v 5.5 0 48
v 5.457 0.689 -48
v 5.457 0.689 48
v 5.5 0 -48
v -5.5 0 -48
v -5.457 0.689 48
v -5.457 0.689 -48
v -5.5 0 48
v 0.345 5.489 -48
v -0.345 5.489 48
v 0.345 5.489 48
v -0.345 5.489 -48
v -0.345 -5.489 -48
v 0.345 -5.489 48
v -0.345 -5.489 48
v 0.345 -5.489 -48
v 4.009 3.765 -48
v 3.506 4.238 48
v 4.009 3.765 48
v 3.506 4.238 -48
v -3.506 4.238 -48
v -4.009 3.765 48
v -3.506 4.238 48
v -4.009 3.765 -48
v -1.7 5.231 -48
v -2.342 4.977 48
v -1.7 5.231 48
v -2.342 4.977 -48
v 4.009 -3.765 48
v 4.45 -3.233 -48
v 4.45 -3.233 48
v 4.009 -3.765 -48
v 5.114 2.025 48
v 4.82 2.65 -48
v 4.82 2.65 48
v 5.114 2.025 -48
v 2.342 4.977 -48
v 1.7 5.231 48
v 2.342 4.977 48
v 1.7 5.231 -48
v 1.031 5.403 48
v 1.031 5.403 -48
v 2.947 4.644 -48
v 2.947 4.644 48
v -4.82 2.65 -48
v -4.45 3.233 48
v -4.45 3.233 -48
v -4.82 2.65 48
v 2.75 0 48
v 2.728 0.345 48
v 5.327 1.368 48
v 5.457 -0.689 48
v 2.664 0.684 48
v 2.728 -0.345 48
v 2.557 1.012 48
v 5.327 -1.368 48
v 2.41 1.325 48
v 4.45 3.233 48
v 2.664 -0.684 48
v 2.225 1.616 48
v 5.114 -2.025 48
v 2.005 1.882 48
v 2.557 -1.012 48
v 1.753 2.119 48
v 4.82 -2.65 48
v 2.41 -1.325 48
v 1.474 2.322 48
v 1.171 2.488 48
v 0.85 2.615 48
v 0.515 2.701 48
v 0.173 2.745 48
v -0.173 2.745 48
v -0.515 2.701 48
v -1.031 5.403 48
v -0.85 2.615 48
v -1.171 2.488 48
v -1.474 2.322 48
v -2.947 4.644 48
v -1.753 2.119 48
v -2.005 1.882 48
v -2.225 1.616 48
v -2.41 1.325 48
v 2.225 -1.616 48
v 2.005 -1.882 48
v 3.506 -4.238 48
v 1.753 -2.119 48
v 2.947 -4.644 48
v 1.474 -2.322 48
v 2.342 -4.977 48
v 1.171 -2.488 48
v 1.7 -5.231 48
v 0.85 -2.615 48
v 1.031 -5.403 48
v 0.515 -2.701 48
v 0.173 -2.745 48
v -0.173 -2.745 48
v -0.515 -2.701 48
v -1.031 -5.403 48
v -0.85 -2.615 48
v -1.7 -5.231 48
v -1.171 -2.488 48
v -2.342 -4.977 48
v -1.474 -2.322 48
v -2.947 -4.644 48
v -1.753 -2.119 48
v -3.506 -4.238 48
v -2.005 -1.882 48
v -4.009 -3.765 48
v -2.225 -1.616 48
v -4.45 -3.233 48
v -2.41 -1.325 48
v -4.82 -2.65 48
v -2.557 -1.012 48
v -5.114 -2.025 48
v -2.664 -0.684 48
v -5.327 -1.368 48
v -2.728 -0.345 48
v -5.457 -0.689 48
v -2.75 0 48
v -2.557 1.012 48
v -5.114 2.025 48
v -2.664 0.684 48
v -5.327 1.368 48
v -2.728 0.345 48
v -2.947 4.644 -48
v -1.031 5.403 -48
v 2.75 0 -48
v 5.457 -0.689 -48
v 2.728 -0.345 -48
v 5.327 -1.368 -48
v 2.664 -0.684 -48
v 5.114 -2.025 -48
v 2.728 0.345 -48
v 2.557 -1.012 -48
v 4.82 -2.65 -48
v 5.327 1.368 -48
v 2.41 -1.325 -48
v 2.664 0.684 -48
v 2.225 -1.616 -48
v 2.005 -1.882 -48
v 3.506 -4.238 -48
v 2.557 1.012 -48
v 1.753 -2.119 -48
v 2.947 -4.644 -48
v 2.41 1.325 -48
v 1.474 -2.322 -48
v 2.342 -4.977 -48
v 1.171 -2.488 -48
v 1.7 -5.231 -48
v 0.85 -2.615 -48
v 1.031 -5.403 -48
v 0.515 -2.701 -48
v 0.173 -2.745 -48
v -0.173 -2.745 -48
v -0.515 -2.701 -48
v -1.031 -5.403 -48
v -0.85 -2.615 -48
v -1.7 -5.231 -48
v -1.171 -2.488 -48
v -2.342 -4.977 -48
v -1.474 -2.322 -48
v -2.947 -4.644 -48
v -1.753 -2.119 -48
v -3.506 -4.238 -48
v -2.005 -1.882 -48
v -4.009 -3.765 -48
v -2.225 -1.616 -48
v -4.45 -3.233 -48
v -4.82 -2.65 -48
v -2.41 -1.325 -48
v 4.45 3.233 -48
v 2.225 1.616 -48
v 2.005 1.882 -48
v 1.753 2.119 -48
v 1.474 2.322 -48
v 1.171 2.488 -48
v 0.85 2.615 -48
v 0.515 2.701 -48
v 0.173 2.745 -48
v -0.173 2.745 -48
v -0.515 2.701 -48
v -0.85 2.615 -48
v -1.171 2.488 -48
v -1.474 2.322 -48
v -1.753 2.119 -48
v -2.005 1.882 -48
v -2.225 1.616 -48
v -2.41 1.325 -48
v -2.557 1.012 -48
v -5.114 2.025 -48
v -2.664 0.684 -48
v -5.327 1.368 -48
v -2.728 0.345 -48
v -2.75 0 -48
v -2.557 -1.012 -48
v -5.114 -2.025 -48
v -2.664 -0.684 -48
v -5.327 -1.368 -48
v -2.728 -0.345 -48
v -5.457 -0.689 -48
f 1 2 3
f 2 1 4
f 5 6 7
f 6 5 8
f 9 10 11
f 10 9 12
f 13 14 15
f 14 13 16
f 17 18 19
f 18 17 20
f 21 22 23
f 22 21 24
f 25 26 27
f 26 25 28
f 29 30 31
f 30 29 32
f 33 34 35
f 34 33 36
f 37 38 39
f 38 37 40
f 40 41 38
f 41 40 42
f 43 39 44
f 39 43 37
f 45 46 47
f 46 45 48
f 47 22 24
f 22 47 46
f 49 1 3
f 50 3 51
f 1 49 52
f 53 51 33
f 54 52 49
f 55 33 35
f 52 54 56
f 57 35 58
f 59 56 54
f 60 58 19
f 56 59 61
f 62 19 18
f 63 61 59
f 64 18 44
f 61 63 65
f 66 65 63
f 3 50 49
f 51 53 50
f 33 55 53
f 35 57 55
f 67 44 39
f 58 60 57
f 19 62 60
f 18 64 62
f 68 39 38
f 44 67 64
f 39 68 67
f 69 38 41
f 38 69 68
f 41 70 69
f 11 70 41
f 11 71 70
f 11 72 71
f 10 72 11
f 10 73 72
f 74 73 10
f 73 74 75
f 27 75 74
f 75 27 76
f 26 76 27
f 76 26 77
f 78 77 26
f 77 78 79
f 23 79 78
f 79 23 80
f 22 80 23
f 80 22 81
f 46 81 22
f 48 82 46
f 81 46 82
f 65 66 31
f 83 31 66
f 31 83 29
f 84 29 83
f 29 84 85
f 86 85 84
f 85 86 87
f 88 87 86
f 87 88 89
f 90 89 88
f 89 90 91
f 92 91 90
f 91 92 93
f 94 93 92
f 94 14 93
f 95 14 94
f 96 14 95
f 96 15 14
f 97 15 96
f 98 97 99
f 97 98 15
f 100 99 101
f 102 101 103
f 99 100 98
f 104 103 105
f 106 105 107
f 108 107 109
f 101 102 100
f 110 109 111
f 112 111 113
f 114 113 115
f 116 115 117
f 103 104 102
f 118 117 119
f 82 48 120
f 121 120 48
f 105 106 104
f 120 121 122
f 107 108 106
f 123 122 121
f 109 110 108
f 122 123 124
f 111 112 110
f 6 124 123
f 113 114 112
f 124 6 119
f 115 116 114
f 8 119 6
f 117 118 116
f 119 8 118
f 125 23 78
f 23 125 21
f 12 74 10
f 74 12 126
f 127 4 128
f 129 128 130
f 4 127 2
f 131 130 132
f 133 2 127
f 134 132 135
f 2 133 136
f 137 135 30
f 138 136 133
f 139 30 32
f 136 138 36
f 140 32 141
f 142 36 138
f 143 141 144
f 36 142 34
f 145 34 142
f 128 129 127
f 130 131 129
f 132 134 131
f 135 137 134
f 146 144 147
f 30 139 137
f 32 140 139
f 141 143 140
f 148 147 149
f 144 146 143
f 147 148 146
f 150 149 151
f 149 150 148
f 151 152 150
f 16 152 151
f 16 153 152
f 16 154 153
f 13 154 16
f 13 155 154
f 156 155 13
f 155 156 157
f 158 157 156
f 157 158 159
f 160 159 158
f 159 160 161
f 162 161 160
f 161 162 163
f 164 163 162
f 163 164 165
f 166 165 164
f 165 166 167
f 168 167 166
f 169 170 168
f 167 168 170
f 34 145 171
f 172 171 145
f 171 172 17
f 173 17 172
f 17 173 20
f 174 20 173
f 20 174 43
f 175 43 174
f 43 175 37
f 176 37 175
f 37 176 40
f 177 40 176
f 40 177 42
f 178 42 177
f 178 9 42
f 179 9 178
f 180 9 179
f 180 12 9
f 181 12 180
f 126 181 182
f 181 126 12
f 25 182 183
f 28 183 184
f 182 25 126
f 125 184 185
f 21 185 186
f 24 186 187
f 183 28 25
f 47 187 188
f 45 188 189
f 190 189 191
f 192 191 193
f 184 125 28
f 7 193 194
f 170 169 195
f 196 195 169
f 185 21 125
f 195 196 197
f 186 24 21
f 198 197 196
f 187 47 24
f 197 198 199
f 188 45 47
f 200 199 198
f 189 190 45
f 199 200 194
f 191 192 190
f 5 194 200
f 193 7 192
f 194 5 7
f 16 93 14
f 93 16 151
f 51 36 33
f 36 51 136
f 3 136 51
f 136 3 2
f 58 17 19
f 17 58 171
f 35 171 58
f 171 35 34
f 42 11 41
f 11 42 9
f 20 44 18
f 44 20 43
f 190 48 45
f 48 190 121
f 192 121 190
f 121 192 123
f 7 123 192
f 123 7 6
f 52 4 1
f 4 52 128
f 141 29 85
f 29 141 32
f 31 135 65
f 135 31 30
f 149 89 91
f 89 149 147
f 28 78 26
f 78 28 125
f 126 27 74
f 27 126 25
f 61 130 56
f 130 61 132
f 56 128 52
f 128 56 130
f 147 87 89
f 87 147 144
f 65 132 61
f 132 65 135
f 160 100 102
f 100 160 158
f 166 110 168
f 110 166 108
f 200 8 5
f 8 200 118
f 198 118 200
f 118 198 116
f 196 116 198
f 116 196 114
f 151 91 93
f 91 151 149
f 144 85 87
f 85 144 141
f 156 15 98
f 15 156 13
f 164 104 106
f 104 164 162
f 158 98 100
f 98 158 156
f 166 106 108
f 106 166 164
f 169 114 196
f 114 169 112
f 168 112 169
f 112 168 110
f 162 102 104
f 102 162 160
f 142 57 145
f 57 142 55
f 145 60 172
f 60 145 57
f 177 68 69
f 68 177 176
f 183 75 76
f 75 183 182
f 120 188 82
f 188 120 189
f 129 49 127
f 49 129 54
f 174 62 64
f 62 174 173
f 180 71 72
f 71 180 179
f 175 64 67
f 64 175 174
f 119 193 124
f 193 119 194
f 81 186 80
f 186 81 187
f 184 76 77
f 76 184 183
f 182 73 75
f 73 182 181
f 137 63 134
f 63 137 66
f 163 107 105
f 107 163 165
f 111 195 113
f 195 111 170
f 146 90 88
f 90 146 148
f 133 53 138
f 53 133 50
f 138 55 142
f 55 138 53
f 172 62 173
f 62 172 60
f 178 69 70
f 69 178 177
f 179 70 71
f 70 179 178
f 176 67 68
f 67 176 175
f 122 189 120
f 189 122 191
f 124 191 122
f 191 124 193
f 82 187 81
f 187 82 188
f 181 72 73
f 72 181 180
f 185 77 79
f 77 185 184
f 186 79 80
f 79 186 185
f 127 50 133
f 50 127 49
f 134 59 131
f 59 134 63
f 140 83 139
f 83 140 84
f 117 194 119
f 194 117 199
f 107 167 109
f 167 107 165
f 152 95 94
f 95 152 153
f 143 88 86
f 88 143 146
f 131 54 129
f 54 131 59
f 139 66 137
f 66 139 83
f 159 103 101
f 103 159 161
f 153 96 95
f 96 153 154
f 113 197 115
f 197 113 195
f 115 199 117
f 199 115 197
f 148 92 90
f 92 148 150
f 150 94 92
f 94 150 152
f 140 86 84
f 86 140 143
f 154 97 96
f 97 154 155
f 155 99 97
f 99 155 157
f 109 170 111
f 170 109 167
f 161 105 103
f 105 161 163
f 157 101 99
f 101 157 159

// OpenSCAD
$fn = 50;


difference() {
	union() {
		translate(v = [0, 0, -48.0000000000]) {
			cylinder(h = 96, r = 5.5000000000);
		}
	}
	union() {
		translate(v = [0, 0, -100.0000000000]) {
			cylinder(h = 200, r = 2.7500000000);
		}
	}
}
